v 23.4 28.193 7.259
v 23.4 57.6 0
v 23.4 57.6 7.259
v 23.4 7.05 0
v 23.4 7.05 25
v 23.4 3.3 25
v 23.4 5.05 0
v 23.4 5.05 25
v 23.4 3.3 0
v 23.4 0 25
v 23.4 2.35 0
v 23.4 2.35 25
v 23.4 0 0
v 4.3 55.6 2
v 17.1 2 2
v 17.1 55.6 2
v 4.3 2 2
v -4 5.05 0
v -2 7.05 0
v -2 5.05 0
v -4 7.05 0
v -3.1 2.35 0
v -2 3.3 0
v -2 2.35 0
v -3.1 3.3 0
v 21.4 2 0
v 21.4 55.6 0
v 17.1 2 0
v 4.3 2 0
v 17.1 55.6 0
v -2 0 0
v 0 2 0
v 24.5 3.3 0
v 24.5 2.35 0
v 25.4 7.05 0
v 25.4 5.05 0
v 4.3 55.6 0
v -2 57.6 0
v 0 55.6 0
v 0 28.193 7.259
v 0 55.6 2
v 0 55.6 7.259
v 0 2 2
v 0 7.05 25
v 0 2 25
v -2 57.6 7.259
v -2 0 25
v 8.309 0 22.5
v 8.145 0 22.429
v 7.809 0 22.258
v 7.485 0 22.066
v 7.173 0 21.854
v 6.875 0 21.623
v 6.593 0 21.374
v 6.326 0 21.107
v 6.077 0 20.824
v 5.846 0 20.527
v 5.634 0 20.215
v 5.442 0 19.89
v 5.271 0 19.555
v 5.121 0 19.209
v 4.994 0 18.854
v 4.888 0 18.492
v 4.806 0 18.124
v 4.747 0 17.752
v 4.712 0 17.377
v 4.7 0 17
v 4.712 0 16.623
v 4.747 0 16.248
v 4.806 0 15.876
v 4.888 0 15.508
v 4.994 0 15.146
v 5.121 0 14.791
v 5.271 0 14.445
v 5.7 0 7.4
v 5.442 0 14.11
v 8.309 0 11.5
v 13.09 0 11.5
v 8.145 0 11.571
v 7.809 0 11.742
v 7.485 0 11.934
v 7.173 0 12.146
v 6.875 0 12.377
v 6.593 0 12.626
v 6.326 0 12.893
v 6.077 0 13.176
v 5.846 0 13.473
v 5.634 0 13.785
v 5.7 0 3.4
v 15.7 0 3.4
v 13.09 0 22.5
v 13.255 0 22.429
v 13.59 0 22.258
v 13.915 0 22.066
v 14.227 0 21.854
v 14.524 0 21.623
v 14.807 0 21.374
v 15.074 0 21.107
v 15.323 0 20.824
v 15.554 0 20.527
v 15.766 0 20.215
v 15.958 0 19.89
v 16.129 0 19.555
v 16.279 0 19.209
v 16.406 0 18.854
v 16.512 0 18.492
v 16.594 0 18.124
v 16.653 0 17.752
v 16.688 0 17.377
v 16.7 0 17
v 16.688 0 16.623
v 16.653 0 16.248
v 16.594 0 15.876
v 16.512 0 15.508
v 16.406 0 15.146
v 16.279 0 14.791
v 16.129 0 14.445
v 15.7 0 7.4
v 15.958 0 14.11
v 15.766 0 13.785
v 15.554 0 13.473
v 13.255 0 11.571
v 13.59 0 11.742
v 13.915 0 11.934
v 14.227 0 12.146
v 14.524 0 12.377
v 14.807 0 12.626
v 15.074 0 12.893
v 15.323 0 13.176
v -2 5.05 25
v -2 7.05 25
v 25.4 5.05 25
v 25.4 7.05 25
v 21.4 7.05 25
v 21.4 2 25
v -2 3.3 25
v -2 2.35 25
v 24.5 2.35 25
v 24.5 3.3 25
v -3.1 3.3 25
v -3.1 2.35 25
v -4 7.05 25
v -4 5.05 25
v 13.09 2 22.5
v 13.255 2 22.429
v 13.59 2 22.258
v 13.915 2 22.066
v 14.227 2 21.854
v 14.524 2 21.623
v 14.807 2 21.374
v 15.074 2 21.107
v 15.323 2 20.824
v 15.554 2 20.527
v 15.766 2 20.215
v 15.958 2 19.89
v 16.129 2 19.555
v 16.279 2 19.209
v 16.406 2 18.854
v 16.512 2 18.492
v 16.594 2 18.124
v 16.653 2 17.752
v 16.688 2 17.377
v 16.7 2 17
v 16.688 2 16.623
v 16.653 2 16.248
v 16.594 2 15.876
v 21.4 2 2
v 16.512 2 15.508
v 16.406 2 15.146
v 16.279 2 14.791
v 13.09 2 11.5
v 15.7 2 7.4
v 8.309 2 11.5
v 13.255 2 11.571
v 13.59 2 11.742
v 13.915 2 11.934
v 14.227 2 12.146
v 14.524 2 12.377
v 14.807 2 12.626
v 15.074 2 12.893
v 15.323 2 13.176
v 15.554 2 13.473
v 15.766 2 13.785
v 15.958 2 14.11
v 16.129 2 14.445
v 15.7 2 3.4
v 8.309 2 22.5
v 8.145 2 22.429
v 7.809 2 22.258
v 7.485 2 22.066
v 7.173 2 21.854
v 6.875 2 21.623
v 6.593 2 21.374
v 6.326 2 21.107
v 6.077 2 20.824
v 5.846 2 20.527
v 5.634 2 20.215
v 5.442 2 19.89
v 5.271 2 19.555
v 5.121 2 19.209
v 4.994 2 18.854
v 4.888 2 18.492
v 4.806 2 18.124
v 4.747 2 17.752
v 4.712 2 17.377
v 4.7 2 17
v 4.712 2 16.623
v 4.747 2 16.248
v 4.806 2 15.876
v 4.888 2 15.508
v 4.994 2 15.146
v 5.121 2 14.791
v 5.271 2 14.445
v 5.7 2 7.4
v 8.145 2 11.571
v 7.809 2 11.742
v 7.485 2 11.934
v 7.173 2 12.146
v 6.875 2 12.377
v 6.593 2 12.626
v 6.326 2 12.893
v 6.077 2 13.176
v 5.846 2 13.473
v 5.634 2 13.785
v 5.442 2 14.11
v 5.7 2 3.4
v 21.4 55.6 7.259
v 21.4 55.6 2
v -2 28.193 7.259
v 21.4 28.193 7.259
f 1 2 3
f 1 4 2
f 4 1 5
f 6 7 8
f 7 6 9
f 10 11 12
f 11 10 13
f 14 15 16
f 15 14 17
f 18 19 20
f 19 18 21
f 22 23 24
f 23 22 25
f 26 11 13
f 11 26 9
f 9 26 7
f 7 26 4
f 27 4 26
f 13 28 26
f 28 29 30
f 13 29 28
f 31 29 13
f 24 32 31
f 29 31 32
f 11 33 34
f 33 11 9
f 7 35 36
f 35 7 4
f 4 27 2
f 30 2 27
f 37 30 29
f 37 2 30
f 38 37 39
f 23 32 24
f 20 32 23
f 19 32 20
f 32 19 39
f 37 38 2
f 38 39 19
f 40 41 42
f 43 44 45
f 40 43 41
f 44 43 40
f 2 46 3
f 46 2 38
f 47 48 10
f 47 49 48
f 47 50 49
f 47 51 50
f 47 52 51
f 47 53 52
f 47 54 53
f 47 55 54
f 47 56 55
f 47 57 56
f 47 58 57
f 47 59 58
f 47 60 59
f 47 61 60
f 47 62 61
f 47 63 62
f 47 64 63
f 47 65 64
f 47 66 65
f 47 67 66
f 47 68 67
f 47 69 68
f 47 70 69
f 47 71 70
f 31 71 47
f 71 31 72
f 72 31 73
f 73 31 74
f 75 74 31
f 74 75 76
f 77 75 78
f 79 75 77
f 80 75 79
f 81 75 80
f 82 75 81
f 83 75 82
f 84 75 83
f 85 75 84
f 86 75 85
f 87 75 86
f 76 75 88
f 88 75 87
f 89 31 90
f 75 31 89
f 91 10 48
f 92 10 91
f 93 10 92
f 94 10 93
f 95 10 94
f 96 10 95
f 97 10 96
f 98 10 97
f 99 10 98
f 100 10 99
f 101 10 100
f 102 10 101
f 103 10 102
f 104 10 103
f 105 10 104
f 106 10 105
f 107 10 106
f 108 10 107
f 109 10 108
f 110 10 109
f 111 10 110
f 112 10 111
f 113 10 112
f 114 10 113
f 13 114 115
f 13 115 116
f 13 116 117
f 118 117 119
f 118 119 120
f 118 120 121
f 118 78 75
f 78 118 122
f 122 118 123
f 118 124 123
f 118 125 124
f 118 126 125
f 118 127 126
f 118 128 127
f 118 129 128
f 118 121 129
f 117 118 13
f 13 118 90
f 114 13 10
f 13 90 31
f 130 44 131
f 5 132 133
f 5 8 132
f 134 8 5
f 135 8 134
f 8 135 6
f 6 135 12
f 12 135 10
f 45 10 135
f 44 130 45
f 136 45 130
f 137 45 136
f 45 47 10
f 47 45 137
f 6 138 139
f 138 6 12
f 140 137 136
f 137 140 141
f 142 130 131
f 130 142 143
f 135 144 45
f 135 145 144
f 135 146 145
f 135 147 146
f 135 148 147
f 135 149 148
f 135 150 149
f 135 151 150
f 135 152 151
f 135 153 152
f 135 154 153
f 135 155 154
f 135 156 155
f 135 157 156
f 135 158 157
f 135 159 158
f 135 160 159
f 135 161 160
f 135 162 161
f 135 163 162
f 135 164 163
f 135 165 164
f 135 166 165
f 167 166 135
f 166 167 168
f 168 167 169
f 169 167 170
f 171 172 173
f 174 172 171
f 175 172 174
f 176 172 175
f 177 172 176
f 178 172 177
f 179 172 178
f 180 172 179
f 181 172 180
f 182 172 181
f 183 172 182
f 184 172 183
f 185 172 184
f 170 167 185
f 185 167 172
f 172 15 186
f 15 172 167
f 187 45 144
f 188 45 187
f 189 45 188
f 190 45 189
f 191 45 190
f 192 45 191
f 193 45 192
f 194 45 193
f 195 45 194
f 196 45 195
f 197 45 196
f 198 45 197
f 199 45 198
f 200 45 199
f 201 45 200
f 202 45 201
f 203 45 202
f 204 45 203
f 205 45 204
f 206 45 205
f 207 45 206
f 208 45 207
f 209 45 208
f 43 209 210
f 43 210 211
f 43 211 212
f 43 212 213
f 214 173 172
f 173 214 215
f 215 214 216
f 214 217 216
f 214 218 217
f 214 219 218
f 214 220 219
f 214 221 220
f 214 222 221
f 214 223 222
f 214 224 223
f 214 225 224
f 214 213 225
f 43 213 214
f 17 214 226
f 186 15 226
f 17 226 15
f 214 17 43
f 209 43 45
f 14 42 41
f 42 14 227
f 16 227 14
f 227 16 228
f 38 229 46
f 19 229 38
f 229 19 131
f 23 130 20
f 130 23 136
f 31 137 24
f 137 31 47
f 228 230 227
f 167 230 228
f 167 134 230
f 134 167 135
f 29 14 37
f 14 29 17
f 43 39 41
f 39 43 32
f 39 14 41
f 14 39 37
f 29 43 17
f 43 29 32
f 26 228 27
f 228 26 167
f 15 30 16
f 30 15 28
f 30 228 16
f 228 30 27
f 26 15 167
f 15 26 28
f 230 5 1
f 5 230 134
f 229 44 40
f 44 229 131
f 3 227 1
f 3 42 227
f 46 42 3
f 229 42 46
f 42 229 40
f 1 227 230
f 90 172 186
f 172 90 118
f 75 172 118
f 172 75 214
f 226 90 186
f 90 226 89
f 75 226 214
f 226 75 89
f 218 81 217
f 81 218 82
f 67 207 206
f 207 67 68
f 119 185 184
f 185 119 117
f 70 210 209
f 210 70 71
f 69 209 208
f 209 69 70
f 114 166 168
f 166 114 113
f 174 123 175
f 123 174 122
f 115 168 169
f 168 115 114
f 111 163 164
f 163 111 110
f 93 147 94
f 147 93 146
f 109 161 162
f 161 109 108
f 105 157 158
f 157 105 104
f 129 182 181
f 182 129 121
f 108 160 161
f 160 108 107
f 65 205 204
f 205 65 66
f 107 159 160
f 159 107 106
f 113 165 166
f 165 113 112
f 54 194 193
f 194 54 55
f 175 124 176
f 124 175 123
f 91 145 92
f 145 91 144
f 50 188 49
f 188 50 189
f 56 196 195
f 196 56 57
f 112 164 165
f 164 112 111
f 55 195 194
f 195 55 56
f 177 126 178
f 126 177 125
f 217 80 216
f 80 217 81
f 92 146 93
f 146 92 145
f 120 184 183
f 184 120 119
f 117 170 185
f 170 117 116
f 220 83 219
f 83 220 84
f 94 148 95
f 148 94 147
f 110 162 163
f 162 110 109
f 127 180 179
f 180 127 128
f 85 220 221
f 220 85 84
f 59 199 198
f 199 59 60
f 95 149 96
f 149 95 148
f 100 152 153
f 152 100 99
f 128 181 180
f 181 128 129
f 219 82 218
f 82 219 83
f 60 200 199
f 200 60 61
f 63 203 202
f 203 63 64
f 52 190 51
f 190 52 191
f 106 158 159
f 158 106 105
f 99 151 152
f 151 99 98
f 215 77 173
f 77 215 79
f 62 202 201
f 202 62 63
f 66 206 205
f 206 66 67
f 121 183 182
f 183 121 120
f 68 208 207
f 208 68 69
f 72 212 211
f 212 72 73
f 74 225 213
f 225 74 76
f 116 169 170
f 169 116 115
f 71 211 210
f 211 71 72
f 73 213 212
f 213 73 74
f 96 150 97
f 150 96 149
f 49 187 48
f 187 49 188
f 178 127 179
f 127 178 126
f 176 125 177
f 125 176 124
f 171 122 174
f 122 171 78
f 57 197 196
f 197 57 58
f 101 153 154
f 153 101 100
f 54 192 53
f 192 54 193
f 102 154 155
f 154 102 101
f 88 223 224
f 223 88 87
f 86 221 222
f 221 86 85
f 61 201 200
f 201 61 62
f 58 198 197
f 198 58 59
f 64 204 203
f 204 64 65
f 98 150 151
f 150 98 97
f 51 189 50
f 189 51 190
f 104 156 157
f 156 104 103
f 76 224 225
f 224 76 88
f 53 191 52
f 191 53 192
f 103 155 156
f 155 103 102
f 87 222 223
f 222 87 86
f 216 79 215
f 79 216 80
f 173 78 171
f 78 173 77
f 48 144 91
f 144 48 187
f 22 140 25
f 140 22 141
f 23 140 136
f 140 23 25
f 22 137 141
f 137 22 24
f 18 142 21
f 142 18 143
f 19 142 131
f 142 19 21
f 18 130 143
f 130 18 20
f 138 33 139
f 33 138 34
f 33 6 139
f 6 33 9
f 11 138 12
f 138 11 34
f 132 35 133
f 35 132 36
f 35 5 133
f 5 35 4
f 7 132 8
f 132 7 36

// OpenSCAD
mcu_width=21.4;
mcu_depth=53.6;
tray_height=25;
pcb_height=1.6;
wall_thickness=2;
solder_cutout=4.3;
usb_conn_width=10;
usb_conn_height=4;
notch_offset=2.35;
notch_width=1.1;
notch_depth=0.95;
hold_tab_offset=5.05;
hold_tab_width=wall_thickness;
hold_tab_depth=wall_thickness;
union(){
difference(){
union(){
cube([mcu_width+wall_thickness,mcu_depth+2*wall_thickness,wall_thickness]);
cube([mcu_width+wall_thickness,wall_thickness,tray_height]);
translate([0,mcu_depth+wall_thickness,0])cube([mcu_width+wall_thickness,wall_thickness,tray_height]);
translate([-wall_thickness,0,0])cube([wall_thickness,mcu_depth+2*wall_thickness,tray_height]);
translate([mcu_width,0,0])cube([wall_thickness,mcu_depth+2*wall_thickness,tray_height]);
}
translate([0,wall_thickness,0])cube([solder_cutout,mcu_depth,wall_thickness]);
translate([mcu_width-solder_cutout,wall_thickness,0])cube([solder_cutout,mcu_depth,wall_thickness]);
translate([-wall_thickness,hold_tab_offset+hold_tab_depth,tray_height])rotate([-40,0,0])cube([mcu_width+2*wall_thickness,mcu_depth+2*wall_thickness-30,20]);
translate([-wall_thickness,hold_tab_offset+hold_tab_depth+cos(40)*(mcu_depth+2*wall_thickness-30),tray_height-sin(40)*(mcu_depth+2*wall_thickness-30)])cube([mcu_width+2*wall_thickness,mcu_depth+2*wall_thickness,20]);
translate([mcu_width/2-usb_conn_width/2,0,wall_thickness+pcb_height-0.2])cube([usb_conn_width,wall_thickness,usb_conn_height]);
translate([mcu_width/2,0,17])rotate([-90,0,0])cylinder(wall_thickness,d=12,$fn=100);
}
translate([mcu_width/2-12/2,0,17-6])cube([12,wall_thickness,0.5]);
translate([mcu_width/2-12/2,0,17+5.5])cube([12,wall_thickness,0.5]);
translate([-wall_thickness-notch_width,notch_offset,0])cube([notch_width,notch_depth,tray_height]);
translate([-wall_thickness-hold_tab_width,hold_tab_offset,0])cube([hold_tab_width,hold_tab_depth,tray_height]);
translate([wall_thickness+mcu_width,notch_offset,0])cube([notch_width,notch_depth,tray_height]);
translate([wall_thickness+mcu_width,hold_tab_offset,0])cube([hold_tab_width,hold_tab_depth,tray_height]);
}
